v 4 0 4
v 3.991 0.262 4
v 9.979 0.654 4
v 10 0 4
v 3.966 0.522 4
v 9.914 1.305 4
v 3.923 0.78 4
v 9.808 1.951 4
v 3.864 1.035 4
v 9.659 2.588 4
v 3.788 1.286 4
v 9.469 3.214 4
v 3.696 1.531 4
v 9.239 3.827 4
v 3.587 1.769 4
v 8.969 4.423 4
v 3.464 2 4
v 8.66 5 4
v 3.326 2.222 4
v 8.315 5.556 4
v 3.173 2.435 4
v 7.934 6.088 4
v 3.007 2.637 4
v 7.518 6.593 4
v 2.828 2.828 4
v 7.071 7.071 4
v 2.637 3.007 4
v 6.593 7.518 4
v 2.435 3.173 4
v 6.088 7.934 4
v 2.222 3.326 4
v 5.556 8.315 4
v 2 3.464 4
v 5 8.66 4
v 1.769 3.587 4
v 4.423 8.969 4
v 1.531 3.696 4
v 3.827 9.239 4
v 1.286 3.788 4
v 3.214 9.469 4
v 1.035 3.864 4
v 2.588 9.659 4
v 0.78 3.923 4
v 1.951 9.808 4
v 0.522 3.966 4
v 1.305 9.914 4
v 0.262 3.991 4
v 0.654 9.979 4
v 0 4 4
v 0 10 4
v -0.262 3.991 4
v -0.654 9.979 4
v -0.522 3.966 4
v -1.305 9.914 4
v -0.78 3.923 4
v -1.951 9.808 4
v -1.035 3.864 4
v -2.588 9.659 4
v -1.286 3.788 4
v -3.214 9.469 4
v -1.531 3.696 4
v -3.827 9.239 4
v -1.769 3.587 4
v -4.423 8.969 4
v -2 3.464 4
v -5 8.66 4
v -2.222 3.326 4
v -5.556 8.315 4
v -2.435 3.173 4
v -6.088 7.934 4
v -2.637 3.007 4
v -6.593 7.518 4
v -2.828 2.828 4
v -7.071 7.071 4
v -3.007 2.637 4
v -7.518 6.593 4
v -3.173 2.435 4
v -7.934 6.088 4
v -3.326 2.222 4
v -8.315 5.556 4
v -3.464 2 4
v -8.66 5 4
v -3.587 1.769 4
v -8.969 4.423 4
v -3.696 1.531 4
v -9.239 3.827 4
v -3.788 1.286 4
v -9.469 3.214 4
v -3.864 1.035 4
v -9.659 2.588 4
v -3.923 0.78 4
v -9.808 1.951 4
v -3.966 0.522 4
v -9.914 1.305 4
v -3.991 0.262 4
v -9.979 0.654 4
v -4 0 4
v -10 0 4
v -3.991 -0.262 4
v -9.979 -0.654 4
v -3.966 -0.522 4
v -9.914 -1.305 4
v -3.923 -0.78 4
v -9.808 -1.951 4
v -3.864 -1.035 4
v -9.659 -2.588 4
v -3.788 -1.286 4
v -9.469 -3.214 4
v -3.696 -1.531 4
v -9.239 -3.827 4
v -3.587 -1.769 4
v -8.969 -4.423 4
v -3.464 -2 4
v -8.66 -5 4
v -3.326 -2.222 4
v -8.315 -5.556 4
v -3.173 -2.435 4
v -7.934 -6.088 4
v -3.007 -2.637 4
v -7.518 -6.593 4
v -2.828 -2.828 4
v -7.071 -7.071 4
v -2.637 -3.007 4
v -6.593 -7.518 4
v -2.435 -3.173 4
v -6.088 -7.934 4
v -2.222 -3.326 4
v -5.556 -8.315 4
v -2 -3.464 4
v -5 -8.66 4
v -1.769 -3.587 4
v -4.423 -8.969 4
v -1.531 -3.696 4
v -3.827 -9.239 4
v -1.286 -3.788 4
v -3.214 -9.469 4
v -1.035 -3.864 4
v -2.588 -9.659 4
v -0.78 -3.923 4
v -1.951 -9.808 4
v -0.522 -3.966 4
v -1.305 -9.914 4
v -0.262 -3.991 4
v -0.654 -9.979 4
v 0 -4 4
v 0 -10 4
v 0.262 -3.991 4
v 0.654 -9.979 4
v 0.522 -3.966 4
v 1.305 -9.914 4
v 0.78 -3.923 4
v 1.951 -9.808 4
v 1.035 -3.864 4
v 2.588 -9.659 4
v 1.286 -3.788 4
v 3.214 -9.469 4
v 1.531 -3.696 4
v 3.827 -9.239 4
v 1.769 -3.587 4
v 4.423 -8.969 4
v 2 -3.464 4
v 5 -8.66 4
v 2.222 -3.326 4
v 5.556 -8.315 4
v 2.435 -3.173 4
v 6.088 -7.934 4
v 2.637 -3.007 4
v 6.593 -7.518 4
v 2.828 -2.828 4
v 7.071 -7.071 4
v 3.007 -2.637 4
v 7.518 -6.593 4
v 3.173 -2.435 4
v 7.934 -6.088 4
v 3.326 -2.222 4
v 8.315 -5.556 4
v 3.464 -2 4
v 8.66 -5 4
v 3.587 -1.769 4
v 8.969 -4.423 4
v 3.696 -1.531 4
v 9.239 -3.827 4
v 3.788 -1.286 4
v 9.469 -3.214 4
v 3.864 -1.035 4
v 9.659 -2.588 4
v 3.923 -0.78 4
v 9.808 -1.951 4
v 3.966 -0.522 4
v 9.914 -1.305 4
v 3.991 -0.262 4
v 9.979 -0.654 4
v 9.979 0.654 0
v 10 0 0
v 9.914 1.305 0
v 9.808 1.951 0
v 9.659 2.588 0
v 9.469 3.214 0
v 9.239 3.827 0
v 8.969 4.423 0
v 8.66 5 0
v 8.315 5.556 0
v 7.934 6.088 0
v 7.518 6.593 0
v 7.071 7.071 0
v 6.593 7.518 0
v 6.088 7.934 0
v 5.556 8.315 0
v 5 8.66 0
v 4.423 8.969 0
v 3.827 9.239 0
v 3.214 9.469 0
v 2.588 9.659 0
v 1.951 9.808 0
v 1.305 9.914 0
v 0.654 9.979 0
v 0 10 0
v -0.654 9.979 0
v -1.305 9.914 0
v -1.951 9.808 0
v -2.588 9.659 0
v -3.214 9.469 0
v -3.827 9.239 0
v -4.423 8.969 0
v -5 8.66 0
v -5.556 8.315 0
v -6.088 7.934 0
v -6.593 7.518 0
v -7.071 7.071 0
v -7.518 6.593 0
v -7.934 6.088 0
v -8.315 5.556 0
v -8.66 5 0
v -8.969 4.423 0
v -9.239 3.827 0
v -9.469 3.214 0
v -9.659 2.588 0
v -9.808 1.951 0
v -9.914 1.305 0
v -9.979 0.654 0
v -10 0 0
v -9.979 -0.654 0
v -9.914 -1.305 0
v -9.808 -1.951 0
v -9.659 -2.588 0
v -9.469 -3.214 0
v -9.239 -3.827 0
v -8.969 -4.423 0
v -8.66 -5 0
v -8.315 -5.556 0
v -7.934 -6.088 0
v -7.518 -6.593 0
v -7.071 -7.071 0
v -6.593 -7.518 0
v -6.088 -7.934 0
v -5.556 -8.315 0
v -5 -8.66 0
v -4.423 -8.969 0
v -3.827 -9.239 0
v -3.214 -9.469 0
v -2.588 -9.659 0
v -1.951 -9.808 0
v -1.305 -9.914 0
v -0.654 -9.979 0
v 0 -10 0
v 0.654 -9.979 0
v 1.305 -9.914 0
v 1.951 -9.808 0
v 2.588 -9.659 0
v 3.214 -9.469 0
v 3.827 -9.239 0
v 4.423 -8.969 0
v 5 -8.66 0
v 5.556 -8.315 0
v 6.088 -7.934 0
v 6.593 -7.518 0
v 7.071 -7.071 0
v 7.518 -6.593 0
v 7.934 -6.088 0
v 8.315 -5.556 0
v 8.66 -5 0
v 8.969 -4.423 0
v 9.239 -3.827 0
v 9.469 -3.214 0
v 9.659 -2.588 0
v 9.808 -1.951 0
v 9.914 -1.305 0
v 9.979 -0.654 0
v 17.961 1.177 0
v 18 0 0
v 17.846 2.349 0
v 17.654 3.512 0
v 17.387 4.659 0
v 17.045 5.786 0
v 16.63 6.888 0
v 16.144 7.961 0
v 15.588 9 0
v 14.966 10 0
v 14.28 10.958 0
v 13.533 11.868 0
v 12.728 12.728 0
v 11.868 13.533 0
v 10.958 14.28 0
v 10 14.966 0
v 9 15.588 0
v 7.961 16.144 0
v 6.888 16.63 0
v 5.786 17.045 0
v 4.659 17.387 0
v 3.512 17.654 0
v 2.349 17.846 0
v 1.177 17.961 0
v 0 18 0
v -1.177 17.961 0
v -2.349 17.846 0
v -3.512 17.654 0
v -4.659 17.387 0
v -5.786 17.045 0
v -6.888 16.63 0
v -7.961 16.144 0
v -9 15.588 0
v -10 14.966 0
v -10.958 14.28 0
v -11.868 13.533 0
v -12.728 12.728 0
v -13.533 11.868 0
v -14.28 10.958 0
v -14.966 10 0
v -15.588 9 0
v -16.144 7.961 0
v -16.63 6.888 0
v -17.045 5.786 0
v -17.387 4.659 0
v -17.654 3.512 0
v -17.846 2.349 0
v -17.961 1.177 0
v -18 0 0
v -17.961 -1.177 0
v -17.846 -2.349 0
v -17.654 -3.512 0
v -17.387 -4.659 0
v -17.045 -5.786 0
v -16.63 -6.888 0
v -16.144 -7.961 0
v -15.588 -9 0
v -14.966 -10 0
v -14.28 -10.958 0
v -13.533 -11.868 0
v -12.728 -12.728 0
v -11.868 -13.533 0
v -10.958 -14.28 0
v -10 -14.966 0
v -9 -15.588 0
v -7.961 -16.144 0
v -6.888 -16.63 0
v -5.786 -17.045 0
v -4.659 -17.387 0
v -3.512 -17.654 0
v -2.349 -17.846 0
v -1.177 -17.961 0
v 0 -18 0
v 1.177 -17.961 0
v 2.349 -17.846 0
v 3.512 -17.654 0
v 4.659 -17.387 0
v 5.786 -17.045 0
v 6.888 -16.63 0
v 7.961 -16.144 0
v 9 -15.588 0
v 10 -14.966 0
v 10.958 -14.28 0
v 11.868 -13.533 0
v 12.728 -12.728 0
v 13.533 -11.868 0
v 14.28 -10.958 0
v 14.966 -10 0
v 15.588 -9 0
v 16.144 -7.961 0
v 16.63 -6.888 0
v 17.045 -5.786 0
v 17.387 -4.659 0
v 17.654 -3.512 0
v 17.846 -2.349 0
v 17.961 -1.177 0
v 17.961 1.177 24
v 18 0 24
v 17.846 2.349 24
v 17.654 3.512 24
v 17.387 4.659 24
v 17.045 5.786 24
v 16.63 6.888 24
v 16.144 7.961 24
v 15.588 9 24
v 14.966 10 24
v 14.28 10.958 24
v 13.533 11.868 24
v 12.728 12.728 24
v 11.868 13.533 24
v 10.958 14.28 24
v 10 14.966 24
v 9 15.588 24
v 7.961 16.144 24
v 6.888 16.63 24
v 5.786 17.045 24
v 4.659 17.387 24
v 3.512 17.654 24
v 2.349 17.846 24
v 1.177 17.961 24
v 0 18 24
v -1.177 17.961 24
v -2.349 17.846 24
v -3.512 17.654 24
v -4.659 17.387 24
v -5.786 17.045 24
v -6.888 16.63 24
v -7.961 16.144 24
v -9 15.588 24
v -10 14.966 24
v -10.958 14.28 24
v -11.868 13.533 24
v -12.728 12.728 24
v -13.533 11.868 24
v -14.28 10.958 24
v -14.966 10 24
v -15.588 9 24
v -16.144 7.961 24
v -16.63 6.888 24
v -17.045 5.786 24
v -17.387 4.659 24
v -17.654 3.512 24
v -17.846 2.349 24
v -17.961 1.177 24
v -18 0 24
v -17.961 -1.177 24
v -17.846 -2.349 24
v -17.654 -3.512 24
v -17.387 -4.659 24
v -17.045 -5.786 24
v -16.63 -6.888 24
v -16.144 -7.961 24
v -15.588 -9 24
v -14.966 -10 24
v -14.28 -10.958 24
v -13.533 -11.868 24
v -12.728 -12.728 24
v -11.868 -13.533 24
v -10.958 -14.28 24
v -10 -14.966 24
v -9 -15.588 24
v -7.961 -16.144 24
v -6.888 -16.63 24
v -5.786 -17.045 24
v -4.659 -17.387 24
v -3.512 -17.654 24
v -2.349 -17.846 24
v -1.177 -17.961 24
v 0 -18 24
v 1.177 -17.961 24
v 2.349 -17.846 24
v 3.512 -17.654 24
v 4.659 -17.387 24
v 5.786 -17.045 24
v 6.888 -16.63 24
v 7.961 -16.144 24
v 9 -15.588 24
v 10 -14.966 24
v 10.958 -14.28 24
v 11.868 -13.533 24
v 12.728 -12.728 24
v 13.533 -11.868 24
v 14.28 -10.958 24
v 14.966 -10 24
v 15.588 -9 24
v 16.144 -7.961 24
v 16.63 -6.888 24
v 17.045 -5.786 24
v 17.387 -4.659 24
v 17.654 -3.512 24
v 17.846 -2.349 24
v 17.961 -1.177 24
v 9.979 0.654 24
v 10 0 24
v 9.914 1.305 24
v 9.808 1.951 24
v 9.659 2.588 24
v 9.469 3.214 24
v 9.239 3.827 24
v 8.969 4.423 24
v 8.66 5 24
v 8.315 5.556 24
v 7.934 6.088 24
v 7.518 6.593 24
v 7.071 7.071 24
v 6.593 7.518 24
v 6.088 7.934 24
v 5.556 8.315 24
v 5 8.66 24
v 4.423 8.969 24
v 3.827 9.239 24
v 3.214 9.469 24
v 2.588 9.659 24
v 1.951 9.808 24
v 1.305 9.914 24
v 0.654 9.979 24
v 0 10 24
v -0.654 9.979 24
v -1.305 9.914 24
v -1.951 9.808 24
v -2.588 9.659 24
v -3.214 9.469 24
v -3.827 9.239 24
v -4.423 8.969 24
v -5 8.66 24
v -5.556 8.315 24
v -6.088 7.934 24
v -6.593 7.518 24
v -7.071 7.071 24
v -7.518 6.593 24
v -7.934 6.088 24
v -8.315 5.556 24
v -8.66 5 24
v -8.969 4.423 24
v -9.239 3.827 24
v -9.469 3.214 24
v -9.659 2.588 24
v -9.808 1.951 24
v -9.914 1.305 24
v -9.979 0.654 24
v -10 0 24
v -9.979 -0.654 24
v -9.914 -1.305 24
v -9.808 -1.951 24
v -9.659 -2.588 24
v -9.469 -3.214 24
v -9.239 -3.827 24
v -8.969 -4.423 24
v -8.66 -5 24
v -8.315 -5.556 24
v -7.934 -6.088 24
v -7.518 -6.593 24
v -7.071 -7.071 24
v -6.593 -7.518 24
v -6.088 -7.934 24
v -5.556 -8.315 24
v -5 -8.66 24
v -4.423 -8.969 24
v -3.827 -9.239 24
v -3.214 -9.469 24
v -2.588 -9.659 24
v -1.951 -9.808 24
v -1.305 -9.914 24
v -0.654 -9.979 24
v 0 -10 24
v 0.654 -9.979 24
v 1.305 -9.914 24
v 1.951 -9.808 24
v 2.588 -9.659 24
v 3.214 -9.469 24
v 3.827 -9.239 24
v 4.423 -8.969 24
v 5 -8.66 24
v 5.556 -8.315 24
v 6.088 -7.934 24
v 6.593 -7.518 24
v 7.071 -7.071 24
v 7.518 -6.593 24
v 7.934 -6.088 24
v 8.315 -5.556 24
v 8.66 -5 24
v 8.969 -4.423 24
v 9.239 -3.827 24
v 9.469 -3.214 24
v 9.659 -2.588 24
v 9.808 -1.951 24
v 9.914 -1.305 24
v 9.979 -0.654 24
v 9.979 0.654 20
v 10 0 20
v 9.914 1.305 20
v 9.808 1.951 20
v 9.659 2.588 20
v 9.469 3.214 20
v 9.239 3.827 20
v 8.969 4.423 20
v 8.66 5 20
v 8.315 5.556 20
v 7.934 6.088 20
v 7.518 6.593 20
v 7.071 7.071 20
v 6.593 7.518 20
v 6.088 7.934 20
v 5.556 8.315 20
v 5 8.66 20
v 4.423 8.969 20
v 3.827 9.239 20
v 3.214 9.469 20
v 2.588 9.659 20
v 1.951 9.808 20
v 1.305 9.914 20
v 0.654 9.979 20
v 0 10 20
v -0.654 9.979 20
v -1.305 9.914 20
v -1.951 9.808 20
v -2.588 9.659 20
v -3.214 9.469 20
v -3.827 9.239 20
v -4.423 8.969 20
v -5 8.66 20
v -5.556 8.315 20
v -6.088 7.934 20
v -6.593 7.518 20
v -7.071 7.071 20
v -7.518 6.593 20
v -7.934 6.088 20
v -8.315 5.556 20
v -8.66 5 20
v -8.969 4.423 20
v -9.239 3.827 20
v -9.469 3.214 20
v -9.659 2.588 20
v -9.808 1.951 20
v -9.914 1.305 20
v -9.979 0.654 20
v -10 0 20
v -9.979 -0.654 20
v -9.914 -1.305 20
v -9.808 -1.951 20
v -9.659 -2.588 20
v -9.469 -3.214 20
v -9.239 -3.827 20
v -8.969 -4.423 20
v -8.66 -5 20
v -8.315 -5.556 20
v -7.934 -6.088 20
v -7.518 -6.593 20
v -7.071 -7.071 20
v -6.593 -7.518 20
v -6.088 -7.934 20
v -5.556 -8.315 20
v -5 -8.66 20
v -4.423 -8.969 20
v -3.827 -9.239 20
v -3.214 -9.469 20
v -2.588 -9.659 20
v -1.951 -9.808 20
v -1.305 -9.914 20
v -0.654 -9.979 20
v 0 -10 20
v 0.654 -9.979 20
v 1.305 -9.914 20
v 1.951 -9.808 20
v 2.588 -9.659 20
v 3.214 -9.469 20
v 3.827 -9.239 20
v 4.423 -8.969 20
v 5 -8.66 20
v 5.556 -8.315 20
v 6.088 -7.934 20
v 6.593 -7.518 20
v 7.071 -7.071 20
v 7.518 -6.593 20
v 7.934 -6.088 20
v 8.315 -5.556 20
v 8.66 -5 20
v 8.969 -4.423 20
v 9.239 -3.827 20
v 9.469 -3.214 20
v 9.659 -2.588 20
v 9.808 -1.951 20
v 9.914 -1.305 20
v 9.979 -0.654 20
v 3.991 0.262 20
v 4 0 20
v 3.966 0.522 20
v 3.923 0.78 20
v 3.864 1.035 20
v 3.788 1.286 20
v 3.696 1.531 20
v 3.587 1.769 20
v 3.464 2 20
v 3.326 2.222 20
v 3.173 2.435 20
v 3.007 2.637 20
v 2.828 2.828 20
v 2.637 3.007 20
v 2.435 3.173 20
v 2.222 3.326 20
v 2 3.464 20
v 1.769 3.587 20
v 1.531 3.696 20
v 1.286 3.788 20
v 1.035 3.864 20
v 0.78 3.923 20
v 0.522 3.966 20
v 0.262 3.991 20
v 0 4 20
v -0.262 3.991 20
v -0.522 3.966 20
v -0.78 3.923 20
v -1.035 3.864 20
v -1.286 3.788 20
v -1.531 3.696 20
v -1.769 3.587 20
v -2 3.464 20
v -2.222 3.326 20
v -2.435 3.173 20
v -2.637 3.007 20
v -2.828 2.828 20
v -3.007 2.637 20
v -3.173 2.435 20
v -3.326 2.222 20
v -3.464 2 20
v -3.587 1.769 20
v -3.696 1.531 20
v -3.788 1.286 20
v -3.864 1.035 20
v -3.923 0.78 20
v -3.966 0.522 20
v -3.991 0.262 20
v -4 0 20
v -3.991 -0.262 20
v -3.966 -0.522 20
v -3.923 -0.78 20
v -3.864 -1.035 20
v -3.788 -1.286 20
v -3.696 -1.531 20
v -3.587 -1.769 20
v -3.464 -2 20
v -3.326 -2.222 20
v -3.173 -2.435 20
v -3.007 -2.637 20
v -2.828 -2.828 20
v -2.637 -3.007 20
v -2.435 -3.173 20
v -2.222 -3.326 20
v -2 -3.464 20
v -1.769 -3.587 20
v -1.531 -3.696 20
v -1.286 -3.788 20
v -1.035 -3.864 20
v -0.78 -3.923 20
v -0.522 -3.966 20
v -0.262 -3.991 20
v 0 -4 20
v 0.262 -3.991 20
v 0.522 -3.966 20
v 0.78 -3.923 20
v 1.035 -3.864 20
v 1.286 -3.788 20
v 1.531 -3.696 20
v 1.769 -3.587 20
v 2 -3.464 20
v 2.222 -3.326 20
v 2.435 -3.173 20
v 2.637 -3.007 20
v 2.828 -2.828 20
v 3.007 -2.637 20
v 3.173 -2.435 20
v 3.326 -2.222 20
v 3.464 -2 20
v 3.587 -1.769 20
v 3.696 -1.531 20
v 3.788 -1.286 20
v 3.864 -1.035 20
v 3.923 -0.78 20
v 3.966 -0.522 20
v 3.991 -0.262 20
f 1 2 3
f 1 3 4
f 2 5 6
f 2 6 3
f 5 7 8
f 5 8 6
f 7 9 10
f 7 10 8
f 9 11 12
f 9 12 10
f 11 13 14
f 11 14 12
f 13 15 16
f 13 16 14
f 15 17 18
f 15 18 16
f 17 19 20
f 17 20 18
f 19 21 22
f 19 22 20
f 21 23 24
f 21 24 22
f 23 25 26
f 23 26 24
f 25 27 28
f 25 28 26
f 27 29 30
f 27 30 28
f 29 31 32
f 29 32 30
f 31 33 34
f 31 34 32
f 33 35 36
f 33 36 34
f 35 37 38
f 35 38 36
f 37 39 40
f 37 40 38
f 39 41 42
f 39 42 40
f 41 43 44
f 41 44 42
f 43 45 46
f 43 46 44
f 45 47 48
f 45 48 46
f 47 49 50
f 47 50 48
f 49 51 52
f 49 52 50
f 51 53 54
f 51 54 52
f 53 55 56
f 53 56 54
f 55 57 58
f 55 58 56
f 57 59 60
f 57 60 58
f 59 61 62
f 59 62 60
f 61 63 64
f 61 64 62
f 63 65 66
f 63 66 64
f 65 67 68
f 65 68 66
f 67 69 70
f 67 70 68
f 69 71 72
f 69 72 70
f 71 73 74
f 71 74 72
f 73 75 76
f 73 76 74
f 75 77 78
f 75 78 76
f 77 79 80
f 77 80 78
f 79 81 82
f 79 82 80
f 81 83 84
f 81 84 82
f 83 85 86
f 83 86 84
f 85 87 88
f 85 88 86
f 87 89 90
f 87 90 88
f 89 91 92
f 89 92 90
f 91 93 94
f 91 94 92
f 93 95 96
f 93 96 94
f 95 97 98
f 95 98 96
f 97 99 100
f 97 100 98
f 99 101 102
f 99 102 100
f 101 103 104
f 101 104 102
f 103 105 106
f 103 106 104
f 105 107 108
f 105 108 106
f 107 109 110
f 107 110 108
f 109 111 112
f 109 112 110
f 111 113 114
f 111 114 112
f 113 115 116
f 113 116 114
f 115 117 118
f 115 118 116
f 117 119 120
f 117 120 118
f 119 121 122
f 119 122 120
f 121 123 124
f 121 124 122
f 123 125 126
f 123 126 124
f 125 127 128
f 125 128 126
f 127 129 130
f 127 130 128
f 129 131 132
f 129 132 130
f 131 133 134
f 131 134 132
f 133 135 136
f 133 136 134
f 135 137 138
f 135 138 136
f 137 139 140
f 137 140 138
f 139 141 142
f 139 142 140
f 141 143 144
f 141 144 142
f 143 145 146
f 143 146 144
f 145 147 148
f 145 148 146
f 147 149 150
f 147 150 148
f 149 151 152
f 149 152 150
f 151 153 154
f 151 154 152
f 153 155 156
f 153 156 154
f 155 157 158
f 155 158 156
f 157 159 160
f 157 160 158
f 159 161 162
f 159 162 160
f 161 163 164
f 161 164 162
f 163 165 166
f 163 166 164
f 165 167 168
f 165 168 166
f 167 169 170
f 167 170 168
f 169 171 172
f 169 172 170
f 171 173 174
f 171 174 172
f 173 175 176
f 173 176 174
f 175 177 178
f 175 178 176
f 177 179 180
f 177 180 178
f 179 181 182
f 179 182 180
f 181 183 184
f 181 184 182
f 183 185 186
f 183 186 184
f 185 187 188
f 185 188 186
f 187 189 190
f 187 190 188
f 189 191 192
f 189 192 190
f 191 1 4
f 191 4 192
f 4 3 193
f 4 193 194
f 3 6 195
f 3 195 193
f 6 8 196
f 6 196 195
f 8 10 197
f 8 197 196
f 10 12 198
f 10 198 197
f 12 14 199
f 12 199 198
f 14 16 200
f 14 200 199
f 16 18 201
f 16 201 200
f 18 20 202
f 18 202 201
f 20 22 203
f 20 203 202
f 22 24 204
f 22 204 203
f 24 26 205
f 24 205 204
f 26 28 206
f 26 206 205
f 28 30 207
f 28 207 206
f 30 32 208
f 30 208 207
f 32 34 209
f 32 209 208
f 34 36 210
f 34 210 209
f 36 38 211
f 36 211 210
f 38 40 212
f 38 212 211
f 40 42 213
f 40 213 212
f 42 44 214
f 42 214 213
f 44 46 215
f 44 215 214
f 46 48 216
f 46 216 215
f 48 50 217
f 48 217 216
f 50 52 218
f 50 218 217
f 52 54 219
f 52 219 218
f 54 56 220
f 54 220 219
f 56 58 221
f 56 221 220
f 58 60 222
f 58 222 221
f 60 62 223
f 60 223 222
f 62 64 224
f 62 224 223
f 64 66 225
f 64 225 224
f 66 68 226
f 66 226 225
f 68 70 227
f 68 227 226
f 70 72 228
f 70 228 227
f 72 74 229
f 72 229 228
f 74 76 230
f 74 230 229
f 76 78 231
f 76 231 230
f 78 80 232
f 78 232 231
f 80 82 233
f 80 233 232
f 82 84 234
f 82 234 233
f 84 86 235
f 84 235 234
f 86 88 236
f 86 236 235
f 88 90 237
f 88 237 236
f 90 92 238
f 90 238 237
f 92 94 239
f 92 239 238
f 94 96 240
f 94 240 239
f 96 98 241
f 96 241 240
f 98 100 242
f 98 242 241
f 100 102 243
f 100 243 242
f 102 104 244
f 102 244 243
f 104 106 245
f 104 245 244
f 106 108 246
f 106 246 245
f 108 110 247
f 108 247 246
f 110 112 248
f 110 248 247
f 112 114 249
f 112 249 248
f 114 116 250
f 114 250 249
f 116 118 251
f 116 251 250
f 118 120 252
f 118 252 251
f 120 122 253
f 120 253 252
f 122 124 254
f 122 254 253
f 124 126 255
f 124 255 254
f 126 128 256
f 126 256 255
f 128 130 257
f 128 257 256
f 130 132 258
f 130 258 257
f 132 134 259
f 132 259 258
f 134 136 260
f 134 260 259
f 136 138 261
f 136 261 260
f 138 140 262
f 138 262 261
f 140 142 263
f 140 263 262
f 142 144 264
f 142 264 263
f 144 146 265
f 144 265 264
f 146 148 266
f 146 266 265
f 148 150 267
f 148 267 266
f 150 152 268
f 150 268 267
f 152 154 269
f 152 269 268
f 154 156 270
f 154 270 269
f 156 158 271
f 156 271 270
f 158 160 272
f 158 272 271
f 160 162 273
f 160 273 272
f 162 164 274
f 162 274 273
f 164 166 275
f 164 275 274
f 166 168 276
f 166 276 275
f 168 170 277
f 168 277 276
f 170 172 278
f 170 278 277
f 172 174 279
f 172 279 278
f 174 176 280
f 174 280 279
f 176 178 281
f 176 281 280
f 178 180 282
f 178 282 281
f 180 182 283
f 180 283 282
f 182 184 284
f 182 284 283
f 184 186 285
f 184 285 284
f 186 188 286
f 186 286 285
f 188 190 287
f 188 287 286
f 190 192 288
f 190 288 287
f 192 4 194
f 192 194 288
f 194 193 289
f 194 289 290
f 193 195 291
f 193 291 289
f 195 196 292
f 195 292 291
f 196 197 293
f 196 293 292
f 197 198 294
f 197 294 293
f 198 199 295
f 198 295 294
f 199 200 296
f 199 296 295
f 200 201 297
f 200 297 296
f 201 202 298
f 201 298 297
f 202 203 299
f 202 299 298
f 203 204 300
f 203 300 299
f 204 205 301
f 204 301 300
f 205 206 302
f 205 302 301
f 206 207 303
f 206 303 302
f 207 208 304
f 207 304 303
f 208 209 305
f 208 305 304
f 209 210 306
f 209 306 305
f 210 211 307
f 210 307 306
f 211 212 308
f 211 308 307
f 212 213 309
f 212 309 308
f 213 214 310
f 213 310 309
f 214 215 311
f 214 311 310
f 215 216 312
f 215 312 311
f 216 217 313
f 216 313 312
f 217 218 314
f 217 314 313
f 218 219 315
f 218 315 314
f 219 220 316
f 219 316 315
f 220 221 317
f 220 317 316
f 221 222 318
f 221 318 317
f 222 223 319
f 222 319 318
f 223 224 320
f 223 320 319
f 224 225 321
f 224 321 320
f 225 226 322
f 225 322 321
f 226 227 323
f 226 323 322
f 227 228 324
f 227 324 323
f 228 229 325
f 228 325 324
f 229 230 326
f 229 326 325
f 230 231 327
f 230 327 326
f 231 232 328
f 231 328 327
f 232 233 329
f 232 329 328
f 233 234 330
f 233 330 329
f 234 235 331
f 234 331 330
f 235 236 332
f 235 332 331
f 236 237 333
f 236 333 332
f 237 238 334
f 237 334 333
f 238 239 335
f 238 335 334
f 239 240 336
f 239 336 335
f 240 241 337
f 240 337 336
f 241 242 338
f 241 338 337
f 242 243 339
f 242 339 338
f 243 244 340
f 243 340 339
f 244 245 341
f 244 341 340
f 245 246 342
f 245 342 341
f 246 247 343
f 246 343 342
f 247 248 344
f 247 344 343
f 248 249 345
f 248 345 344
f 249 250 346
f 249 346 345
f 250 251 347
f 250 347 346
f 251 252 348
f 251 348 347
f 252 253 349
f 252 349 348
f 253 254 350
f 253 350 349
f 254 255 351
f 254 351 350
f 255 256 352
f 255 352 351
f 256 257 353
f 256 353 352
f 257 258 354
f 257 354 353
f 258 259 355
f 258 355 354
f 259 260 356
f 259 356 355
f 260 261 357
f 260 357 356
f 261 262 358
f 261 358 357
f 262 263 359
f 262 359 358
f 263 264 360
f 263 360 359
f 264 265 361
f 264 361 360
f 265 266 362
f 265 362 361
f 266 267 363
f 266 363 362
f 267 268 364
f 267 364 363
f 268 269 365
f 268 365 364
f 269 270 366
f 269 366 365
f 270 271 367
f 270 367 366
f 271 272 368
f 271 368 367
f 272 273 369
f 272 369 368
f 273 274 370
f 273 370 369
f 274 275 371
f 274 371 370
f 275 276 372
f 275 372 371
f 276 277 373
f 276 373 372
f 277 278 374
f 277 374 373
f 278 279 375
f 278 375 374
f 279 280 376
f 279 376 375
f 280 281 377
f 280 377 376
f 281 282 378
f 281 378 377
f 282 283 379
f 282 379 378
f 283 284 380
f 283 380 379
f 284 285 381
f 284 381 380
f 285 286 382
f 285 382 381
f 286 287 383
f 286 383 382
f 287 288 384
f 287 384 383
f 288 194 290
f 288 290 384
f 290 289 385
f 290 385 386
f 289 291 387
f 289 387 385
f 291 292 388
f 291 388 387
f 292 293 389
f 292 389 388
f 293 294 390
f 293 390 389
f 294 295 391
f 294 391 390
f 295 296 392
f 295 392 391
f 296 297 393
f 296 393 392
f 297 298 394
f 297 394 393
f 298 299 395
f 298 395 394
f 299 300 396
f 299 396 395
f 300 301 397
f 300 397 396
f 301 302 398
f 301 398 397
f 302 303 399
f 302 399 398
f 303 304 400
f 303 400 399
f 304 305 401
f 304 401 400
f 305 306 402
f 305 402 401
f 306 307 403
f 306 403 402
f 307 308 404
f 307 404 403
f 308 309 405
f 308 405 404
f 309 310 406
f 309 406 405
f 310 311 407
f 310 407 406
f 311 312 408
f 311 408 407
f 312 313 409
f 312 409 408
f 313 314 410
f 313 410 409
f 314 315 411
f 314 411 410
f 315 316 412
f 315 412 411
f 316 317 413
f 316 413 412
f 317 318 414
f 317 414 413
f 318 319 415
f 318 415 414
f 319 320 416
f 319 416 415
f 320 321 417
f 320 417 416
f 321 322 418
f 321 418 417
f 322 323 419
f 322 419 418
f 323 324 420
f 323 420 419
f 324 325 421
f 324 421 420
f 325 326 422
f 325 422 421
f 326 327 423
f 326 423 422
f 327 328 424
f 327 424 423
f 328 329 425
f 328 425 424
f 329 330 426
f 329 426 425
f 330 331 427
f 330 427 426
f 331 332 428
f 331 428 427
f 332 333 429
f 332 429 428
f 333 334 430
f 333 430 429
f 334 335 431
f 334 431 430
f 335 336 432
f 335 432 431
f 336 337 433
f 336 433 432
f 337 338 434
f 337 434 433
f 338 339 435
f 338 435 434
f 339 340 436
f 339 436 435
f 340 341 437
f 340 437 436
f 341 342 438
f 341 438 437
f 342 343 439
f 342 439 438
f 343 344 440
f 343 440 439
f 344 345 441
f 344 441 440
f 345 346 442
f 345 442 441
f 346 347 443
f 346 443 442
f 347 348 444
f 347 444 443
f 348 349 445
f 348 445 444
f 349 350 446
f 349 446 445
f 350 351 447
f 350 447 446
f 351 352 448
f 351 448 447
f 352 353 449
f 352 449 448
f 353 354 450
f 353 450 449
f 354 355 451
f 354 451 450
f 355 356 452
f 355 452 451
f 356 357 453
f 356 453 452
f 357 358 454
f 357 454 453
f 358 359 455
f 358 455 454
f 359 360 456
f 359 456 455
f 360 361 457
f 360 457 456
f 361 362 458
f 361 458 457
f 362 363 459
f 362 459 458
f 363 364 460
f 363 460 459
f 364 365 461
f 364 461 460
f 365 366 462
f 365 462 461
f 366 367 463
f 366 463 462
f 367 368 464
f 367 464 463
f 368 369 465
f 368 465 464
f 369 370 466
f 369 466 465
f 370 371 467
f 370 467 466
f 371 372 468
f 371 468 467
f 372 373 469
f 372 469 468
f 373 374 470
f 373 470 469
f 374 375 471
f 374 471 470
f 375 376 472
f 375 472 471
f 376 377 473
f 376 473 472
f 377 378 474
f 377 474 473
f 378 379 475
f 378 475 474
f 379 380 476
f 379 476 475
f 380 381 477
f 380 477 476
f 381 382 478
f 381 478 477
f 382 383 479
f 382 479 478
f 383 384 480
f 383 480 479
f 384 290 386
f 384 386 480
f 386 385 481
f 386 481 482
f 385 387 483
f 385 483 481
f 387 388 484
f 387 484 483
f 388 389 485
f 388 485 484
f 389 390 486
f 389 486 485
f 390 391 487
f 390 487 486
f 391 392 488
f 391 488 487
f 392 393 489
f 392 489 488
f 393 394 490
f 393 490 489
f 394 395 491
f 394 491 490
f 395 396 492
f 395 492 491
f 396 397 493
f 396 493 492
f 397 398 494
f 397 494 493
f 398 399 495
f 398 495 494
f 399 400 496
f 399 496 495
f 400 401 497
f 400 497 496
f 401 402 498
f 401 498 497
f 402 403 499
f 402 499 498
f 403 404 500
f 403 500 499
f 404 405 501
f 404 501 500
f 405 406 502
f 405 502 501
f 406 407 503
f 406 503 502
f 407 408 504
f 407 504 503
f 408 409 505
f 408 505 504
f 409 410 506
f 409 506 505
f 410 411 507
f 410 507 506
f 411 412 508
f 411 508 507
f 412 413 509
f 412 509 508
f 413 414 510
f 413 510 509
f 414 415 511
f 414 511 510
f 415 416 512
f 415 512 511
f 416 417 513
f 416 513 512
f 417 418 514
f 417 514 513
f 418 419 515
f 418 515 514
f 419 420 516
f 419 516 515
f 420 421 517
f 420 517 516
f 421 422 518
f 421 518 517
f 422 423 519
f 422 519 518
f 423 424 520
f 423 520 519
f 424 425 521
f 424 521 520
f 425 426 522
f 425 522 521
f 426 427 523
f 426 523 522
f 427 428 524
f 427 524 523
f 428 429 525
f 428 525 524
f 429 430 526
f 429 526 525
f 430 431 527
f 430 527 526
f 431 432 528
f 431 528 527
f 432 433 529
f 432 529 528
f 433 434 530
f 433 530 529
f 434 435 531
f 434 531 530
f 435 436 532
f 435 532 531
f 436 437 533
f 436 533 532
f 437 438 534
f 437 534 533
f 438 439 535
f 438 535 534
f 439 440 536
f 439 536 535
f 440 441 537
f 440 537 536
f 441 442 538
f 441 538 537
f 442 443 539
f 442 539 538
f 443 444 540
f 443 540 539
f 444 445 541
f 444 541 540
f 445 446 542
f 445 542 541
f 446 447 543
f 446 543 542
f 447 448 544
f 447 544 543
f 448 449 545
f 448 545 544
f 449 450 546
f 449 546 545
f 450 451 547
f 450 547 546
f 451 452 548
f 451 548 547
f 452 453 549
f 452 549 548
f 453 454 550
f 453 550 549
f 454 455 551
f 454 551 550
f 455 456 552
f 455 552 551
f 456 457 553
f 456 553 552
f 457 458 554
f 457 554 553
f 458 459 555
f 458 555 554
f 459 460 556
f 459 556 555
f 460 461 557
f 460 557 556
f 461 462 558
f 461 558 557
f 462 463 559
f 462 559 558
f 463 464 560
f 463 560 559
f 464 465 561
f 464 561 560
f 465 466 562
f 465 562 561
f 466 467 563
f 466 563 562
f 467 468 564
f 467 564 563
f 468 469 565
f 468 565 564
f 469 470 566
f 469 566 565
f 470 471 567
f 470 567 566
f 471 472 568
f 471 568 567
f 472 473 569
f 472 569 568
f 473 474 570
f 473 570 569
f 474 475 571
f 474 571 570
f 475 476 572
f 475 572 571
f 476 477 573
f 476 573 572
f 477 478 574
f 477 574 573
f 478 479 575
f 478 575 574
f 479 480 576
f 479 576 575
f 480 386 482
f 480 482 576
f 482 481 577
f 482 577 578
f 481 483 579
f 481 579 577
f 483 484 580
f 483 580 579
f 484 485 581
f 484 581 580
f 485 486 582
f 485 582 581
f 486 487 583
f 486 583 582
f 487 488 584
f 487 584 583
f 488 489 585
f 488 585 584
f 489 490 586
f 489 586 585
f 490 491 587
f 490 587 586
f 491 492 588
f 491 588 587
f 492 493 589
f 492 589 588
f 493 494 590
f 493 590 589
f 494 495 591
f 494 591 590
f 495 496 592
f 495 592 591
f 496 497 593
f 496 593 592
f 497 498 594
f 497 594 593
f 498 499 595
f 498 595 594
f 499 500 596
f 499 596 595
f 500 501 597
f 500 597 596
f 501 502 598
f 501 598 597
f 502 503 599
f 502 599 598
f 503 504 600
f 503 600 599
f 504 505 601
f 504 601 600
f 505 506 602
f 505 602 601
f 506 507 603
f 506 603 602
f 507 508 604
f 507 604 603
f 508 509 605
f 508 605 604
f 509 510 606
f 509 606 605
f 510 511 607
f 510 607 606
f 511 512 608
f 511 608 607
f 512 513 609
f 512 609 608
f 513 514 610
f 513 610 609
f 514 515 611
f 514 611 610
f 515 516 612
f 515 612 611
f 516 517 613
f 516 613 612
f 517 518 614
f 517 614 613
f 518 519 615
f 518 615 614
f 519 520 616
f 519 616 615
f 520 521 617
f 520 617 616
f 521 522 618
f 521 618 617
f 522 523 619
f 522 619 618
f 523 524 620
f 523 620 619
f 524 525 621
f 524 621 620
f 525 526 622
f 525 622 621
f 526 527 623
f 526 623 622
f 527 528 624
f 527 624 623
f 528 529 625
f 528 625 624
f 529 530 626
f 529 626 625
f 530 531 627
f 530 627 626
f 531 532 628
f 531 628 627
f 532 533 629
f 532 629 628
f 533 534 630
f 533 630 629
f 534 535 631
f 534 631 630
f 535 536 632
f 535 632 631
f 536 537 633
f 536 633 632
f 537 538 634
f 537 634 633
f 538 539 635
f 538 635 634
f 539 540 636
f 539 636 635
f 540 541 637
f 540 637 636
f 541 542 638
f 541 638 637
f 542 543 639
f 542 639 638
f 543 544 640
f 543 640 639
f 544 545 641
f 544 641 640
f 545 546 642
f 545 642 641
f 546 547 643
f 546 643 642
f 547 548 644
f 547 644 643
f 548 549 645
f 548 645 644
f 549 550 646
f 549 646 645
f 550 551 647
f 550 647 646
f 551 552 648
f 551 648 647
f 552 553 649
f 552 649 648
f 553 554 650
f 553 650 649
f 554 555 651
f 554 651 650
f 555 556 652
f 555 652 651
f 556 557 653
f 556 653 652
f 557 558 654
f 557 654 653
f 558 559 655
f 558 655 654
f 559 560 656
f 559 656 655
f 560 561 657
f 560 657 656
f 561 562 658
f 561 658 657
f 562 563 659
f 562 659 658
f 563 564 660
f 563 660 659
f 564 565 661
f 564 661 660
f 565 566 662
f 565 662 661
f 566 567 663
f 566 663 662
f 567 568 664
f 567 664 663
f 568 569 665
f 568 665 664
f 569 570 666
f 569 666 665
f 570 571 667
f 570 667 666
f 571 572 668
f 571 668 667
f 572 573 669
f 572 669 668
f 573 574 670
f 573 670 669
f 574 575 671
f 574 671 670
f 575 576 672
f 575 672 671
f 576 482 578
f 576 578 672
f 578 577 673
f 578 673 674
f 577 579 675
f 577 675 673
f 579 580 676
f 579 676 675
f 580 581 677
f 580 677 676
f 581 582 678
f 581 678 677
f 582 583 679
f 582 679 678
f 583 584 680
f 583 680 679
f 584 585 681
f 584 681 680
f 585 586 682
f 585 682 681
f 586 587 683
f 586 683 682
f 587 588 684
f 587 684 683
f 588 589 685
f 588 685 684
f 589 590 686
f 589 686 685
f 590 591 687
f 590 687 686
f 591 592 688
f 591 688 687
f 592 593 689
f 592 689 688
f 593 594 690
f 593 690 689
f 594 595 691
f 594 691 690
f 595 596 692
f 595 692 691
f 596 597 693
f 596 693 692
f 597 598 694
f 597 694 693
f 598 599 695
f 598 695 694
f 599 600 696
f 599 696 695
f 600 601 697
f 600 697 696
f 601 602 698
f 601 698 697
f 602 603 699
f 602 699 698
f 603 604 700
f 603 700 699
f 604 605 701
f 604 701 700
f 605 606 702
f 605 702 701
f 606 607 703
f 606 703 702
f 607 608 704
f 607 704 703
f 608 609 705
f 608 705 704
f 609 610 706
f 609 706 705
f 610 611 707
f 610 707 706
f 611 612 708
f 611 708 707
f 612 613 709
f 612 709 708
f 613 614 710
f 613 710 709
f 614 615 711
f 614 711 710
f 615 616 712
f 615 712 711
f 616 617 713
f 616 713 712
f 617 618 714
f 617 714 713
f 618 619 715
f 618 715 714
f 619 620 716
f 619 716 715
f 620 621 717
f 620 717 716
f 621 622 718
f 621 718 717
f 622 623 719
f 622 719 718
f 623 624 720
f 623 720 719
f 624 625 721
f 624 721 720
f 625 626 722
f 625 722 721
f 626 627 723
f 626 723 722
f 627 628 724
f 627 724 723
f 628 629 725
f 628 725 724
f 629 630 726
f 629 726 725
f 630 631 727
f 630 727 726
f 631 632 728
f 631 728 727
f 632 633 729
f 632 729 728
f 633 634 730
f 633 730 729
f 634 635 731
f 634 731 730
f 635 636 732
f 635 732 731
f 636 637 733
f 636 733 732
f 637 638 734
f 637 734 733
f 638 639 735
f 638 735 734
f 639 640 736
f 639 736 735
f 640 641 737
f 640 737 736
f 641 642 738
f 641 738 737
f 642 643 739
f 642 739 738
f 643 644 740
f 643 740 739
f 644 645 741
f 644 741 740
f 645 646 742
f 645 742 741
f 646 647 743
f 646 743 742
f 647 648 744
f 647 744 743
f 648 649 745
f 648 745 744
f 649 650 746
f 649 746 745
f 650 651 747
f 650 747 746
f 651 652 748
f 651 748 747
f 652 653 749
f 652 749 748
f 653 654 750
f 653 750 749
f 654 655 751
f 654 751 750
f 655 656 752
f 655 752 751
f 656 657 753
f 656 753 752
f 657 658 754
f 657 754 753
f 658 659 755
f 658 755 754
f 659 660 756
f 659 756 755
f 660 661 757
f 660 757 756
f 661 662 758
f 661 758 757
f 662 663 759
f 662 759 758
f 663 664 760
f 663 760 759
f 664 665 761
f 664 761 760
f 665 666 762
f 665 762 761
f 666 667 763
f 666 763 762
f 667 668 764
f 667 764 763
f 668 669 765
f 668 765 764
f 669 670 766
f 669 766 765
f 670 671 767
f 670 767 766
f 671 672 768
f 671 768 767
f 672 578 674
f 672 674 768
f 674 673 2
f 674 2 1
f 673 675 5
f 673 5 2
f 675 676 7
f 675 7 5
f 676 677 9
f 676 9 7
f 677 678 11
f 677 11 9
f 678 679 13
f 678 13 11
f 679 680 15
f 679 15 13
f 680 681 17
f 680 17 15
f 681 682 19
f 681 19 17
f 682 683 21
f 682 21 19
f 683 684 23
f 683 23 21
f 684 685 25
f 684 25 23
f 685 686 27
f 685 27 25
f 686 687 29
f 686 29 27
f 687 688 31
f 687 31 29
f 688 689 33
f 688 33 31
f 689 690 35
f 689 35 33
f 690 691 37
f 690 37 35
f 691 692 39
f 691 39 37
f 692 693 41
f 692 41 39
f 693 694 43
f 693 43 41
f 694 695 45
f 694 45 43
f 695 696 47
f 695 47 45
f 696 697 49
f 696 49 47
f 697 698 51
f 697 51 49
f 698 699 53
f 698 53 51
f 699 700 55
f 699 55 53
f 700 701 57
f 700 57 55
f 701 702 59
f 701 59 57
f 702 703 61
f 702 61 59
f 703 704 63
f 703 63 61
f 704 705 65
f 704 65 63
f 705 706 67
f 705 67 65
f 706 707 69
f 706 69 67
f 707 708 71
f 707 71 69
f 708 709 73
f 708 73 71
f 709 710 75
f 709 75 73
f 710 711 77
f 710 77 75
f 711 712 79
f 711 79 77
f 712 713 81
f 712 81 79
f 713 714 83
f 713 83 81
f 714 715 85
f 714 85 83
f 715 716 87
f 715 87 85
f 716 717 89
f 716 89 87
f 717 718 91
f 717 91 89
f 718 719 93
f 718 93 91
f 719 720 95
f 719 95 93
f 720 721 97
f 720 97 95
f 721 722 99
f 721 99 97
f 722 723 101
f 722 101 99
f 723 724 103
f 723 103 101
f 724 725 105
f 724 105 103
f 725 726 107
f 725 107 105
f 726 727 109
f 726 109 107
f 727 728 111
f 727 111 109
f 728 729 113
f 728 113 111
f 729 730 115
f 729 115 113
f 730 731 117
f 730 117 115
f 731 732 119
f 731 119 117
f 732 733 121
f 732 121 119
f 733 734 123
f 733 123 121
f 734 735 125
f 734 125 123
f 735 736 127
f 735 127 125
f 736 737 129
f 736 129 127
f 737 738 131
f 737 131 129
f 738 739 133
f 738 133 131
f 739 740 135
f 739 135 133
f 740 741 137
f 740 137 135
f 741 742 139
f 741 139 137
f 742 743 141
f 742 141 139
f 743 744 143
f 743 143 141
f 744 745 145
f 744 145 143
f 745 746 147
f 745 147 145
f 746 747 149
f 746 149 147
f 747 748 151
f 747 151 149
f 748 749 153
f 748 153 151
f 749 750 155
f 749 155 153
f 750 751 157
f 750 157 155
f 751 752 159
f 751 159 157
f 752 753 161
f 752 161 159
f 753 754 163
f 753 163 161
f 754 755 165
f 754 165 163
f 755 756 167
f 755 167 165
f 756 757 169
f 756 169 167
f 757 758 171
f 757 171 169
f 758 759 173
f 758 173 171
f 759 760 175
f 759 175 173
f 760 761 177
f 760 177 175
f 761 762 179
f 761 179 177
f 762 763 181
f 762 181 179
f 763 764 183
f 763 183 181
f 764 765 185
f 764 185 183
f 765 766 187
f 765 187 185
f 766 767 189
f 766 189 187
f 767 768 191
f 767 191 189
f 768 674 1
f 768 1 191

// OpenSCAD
// Original MechIntel educational model. CC0-1.0. Units: mm.
// Not a standardized or load-rated component.
$fn=96;
// Section points: [radius, height], mm. Edit to change the profile.
section=[[4, 4], [10, 4], [10, 0], [18, 0], [18, 24], [10, 24], [10, 20], [4, 20]];
rotate_extrude($fn=96) polygon(points=section);
